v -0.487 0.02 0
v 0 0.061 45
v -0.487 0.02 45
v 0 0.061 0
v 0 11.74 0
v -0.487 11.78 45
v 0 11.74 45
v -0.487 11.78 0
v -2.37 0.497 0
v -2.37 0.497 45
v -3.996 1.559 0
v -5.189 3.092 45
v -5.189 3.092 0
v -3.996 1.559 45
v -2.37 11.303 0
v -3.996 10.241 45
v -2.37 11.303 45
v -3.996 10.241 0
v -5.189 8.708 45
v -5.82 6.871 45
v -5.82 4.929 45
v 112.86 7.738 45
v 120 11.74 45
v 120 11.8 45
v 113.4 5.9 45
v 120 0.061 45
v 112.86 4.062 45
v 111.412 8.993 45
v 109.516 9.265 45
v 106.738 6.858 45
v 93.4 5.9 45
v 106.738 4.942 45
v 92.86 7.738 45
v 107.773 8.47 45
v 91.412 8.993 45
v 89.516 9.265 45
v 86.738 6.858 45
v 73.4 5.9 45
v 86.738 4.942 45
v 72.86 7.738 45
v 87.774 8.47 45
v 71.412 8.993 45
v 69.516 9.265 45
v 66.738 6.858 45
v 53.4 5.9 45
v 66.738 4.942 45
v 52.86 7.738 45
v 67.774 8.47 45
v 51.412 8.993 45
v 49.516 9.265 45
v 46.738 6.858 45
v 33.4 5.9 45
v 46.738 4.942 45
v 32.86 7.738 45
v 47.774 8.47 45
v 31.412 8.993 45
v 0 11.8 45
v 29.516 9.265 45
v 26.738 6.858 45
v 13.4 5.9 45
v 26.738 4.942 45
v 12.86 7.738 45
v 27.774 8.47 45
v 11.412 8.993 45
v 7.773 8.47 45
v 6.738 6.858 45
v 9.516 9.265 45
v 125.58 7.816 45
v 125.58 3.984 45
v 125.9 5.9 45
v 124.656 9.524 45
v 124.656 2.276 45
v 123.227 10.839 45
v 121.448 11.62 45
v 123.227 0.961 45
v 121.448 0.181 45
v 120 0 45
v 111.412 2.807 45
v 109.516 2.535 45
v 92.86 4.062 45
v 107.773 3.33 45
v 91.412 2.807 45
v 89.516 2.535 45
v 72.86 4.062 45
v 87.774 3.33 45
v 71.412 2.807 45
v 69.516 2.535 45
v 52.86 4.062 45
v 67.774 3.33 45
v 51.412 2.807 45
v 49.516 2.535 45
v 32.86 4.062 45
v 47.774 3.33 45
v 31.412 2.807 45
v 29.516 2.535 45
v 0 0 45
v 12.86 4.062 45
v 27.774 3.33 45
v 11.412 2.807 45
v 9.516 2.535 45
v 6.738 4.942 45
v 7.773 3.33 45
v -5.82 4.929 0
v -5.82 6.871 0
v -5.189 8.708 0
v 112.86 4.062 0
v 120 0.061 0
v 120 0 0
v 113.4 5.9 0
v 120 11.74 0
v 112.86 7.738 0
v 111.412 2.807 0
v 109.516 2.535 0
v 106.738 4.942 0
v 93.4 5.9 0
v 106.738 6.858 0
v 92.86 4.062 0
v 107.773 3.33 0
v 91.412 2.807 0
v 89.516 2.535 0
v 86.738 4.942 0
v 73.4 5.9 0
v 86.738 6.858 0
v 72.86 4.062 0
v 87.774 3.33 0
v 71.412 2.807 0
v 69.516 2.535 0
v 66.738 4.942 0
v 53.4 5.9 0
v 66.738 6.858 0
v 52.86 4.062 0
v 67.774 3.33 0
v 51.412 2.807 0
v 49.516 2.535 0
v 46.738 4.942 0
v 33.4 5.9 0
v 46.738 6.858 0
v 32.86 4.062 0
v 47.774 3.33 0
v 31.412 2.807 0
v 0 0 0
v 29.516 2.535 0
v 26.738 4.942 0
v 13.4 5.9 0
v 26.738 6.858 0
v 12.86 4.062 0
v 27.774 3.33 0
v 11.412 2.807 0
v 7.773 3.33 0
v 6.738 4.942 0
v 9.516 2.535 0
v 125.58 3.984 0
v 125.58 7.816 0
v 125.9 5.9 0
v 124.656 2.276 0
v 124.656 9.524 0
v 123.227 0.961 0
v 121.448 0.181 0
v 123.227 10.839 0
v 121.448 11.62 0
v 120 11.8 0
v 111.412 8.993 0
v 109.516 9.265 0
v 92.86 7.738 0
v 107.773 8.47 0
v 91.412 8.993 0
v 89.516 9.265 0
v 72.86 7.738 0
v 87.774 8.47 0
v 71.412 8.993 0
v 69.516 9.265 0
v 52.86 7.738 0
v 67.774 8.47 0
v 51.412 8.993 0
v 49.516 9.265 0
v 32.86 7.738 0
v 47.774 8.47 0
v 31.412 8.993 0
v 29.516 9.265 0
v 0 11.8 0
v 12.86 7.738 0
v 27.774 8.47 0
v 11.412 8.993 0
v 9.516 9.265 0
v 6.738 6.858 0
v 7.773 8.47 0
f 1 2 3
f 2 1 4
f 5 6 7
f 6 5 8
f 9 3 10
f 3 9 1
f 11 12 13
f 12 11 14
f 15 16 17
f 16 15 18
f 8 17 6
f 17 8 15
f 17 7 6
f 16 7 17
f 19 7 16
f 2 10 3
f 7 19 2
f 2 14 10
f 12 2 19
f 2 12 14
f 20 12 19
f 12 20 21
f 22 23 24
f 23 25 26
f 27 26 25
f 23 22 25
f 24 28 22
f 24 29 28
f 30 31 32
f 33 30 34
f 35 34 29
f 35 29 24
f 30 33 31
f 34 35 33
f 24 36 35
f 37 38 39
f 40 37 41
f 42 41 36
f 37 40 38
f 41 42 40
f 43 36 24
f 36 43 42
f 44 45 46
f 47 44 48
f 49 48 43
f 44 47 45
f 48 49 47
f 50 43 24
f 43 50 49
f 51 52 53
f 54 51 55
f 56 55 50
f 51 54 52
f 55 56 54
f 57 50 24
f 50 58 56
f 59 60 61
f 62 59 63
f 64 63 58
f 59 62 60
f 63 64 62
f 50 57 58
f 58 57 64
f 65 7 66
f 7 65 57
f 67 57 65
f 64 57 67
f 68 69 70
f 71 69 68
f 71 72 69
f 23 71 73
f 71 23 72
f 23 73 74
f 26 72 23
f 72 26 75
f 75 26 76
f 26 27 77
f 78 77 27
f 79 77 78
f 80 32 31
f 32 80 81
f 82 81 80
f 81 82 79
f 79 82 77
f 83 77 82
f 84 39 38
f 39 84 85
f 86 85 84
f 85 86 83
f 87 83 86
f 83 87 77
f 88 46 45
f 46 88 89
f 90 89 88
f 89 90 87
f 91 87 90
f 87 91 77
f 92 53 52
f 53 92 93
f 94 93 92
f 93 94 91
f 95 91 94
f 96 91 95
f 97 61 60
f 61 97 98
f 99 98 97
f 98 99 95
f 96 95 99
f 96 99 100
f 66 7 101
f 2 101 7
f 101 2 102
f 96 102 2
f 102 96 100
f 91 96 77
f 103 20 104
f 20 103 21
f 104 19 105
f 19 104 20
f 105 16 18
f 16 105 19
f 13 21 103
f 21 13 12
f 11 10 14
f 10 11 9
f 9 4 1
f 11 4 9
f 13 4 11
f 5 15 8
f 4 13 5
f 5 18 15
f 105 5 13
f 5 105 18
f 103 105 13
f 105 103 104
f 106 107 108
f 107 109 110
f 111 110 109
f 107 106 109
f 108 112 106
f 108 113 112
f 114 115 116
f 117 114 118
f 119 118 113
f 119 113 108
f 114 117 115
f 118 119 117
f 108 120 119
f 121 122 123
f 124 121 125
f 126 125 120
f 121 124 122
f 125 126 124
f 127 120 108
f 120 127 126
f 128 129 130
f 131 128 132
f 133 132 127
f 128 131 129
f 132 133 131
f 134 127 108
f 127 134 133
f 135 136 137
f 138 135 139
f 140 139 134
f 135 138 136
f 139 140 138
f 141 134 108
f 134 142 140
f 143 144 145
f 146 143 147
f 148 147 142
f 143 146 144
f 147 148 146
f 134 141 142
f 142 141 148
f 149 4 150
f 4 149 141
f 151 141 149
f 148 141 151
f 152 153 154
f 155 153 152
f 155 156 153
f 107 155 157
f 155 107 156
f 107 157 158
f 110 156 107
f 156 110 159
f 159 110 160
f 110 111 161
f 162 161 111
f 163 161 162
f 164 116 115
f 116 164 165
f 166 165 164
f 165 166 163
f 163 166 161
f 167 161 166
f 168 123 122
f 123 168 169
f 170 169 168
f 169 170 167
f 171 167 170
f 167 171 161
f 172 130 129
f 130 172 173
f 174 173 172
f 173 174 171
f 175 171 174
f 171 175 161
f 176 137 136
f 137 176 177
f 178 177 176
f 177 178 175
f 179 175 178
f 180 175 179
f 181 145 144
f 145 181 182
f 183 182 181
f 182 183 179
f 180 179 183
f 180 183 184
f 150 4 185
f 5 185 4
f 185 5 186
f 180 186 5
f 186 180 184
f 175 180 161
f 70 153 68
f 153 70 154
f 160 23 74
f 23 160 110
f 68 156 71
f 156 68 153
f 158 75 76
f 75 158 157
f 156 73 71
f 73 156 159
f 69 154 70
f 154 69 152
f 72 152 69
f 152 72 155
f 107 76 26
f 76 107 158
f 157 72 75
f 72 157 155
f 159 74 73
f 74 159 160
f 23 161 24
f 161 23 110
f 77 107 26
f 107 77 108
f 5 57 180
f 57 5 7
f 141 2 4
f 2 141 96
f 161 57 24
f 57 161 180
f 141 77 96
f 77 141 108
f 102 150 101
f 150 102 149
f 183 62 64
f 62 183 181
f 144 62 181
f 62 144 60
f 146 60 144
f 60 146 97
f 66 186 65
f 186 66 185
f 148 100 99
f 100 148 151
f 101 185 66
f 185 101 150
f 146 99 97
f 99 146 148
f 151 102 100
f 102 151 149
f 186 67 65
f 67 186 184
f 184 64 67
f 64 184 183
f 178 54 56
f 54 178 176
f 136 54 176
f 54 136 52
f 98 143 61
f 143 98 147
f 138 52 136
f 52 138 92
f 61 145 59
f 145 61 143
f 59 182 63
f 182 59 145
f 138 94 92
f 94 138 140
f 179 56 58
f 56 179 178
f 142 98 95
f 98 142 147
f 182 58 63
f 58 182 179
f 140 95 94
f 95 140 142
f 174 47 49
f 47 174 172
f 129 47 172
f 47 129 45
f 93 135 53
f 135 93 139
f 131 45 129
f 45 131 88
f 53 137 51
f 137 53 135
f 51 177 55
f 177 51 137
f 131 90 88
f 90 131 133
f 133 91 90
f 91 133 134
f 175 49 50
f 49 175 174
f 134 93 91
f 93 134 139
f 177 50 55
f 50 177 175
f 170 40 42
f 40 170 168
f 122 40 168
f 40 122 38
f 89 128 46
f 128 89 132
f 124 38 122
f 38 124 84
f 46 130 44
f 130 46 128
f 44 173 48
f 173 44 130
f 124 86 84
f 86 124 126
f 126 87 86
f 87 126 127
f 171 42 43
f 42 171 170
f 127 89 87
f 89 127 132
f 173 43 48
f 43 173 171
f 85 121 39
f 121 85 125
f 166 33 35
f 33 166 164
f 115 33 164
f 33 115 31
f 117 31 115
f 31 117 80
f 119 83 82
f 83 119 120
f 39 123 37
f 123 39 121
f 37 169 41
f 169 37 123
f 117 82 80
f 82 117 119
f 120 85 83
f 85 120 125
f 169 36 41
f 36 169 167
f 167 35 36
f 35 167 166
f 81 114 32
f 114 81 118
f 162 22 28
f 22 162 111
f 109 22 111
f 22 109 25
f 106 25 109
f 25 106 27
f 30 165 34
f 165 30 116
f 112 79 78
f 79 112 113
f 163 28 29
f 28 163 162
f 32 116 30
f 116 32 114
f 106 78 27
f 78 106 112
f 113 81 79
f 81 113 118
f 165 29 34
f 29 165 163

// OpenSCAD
//// CONFIGURATION ////
width=45;
spacing=20;
shaftSize=6.8;
holes=6;

//// DERIVED VARS ////

// Add 1.5mm of material on either side of the holes
height=shaftSize+5;

difference() {
  union() {
    translate([0,height/2,0])
      cylinder(h=width,d=height,center=false);
    translate([(holes)*spacing,height/2,0])
      cylinder(h=width,d=height,center=false);
    cube([(holes)*spacing,height,width],center=false);
  }
  union() {
    for(x =[0 : 1 : holes-1]) {
      translate([x*spacing+(spacing/2),height/2,0])
        cylinder(h=width+.1,d=shaftSize,center=false);    
    }
  }
}
